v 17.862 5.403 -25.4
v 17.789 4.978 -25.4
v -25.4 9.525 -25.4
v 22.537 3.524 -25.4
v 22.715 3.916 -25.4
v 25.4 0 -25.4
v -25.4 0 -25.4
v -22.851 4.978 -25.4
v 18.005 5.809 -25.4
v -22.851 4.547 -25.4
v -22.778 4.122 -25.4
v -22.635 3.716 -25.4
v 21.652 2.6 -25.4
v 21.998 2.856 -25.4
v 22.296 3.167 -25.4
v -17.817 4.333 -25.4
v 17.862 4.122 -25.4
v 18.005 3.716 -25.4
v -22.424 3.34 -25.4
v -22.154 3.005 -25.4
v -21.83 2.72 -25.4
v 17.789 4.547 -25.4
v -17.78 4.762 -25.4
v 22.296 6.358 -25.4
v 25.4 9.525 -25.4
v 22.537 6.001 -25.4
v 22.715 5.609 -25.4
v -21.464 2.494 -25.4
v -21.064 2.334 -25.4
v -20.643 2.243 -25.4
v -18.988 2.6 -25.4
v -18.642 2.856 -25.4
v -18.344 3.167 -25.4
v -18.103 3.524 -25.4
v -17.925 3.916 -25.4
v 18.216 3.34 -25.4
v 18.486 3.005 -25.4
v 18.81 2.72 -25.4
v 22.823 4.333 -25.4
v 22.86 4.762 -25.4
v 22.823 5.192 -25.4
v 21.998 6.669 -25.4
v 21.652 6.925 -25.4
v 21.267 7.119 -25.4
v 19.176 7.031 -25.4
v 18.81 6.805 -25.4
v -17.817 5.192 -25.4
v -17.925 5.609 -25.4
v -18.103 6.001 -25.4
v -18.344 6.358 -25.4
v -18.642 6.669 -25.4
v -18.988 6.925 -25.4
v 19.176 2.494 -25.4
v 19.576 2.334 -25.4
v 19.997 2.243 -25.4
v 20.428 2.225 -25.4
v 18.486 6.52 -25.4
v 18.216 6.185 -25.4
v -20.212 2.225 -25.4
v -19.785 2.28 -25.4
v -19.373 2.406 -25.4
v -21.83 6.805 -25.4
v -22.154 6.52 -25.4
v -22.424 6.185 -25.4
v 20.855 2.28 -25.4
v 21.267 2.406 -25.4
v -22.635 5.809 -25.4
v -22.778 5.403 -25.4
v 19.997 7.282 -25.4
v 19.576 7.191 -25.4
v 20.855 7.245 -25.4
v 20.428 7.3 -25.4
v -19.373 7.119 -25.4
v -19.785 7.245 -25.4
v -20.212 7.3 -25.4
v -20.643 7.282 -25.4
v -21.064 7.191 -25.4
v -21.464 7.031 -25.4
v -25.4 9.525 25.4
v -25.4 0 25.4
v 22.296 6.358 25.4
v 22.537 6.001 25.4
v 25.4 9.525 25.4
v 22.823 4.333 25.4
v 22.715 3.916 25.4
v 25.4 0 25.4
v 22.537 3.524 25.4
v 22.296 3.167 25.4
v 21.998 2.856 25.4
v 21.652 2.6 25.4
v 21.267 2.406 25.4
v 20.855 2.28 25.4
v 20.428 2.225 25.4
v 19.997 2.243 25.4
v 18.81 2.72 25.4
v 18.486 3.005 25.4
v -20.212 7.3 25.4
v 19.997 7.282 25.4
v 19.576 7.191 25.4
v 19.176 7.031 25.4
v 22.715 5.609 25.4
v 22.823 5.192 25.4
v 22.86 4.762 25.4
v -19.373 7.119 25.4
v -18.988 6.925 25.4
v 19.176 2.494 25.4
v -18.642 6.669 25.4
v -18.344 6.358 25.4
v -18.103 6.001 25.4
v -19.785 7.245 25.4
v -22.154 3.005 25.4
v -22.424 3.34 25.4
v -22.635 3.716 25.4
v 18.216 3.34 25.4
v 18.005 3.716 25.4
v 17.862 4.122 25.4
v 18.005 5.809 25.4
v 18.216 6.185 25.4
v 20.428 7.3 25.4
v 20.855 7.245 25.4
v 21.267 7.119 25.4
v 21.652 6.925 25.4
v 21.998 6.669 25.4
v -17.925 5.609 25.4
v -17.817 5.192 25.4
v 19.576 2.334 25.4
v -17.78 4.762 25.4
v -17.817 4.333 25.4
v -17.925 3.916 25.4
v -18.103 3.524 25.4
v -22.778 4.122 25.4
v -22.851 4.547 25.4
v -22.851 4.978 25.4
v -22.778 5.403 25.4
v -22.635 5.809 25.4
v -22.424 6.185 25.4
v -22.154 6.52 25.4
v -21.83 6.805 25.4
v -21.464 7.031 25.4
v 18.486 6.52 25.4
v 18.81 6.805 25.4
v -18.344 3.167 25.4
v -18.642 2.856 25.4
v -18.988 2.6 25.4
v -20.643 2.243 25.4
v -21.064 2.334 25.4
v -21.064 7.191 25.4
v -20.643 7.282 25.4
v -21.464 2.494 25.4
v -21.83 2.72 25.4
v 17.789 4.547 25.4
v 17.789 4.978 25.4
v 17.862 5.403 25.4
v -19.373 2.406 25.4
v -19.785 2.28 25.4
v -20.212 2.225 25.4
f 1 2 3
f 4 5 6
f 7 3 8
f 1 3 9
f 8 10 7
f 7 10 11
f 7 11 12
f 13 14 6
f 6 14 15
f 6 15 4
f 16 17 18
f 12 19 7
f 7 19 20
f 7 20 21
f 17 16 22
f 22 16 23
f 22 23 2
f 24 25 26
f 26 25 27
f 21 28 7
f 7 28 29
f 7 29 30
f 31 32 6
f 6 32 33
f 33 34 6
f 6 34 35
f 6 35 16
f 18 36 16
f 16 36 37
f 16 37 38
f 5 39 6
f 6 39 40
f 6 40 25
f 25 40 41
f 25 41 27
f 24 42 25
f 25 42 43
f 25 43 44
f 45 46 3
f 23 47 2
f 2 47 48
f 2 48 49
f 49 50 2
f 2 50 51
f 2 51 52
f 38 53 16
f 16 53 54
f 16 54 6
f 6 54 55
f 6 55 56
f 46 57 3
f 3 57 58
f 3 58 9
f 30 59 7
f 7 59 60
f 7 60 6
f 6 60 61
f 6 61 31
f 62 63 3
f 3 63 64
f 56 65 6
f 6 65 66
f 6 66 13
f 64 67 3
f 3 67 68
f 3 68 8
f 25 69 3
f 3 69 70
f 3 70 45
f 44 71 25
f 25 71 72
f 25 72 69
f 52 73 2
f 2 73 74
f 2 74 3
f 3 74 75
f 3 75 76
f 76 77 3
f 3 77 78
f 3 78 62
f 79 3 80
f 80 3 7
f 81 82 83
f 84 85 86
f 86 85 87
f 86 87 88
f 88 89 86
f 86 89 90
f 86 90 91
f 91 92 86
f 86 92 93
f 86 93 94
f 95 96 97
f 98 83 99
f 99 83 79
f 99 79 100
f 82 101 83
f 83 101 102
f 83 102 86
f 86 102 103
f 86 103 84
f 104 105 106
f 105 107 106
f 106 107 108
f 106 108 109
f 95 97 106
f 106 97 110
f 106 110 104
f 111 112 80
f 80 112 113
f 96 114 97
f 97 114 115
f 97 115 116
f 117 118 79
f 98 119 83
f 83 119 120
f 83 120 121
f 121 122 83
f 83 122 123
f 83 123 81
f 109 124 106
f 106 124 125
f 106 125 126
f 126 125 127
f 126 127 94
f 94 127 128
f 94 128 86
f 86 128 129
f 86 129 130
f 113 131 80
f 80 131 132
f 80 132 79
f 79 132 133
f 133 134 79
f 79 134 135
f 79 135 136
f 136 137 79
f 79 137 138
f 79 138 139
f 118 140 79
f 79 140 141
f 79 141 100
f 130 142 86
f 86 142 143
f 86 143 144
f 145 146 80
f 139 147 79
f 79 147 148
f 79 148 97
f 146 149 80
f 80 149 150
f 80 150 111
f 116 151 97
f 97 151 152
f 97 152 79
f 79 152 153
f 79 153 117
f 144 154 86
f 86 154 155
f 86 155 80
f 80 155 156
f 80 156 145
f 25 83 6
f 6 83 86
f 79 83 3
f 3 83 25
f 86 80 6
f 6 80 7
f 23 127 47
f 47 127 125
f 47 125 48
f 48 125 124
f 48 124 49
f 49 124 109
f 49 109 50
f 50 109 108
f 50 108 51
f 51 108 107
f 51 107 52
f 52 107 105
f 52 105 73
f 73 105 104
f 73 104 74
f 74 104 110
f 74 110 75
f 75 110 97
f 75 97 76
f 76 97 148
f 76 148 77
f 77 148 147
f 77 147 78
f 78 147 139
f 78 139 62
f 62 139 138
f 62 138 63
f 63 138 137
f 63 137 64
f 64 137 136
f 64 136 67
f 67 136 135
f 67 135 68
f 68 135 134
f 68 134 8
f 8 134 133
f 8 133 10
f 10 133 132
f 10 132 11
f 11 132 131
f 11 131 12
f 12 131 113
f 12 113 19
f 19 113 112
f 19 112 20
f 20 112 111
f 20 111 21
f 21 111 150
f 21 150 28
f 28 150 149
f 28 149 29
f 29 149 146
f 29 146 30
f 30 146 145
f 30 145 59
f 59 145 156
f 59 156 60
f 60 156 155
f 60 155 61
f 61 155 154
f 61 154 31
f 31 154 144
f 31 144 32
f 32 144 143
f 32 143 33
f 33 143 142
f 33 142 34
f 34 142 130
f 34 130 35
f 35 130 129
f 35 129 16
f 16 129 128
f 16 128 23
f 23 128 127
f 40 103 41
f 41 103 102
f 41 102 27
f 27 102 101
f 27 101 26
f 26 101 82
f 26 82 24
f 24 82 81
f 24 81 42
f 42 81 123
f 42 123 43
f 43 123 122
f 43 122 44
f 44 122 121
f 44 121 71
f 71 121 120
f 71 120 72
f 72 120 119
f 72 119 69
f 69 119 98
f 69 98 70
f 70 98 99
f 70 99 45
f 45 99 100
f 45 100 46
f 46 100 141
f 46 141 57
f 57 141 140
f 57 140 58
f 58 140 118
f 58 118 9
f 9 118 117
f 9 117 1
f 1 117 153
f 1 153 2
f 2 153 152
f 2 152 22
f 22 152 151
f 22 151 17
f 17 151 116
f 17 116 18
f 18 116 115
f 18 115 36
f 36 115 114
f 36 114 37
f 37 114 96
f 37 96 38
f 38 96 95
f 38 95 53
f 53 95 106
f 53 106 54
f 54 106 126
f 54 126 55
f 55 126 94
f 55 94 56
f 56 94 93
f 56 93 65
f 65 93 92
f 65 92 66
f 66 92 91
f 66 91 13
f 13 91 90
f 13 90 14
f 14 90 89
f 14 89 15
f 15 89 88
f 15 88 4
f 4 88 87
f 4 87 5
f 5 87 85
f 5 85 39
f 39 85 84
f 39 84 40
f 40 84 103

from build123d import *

# Parameters (mm, degrees)
SKETCH2_W                 = 50.8
SKETCH2_H                 = 50.8
BOSS_EXTRUDE1_DEPTH       = 9.525
F_6_32_TAPPED_HOLE1_D     = 2.7051
F_6_32_TAPPED_HOLE1_DEPTH = 9.398
F_6_32_TAPPED_HOLE1_TIP   = 0.81269403
F_6_32_TAPPED_HOLE2_D     = 2.7051
F_6_32_TAPPED_HOLE2_DEPTH = 9.398
F_6_32_TAPPED_HOLE2_TIP   = 0.81269403
SKETCH3_R                 = 2.54
CUT_EXTRUDE1_DEPTH        = 58.589283942


with BuildPart() as part:
    # Sketch2 → Boss-Extrude1 (new body)
    with BuildSketch(Plane(origin=(0, 0, 0), x_dir=(1, 0, 0), z_dir=(0, 1, 0))):
        Rectangle(SKETCH2_W, SKETCH2_H)
    extrude(amount=BOSS_EXTRUDE1_DEPTH)

    # #6-32 Tapped Hole1
    with Locations(Plane.XY.offset(25.4)):
        with Locations((-20.32, 4.7625), (20.32, 4.7625)):
            Hole(F_6_32_TAPPED_HOLE1_D / 2, depth=F_6_32_TAPPED_HOLE1_DEPTH)
            with Locations((0, 0, -(F_6_32_TAPPED_HOLE1_DEPTH + F_6_32_TAPPED_HOLE1_TIP / 2))):  # 118° drill point
                Cone(0, F_6_32_TAPPED_HOLE1_D / 2, F_6_32_TAPPED_HOLE1_TIP, mode=Mode.SUBTRACT)

    # #6-32 Tapped Hole2
    with Locations(Plane(origin=(0, 0, -25.4), x_dir=(-1, 0, 0), z_dir=(0, 0, -1))):
        with Locations((-20.32, 4.7625), (20.32, 4.7625)):
            Hole(F_6_32_TAPPED_HOLE2_D / 2, depth=F_6_32_TAPPED_HOLE2_DEPTH)
            with Locations((0, 0, -(F_6_32_TAPPED_HOLE2_DEPTH + F_6_32_TAPPED_HOLE2_TIP / 2))):  # 118° drill point
                Cone(0, F_6_32_TAPPED_HOLE2_D / 2, F_6_32_TAPPED_HOLE2_TIP, mode=Mode.SUBTRACT)

    # Sketch3 → Cut-Extrude1 (cut, through all)
    with BuildSketch(Plane.XY.offset(25.4)):
        with Locations((20.32, 4.7625)):
            Circle(SKETCH3_R)
        with Locations((-20.32, 4.7625)):
            Circle(SKETCH3_R)
    extrude(amount=-CUT_EXTRUDE1_DEPTH, mode=Mode.SUBTRACT)


solid = part.part
